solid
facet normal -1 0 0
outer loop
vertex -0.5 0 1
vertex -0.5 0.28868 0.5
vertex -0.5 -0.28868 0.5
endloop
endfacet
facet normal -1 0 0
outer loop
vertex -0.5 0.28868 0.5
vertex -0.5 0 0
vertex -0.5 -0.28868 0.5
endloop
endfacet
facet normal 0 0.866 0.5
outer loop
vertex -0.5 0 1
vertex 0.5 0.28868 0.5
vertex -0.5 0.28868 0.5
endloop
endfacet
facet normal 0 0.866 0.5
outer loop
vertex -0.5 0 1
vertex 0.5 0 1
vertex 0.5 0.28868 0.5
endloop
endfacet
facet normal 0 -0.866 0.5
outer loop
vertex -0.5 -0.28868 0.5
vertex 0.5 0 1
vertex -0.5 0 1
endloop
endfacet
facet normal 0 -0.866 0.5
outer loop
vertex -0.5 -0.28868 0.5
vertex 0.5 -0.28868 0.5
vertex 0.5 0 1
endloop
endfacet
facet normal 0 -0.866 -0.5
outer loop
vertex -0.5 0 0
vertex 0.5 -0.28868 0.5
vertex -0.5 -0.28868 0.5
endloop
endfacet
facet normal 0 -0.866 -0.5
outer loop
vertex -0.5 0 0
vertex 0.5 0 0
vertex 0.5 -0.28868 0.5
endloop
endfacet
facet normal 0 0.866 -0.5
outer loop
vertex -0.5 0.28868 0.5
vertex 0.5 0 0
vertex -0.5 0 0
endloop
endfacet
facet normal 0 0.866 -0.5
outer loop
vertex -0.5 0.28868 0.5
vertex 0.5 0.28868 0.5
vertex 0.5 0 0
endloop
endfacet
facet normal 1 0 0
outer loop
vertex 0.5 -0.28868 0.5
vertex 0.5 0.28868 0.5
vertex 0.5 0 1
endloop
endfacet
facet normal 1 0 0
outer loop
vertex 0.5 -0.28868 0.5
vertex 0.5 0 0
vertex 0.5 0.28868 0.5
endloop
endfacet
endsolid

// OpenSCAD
// Rhombic Prism for Basic Shapes
// by Slashee the Cow

line_length = 0.5;
rhombus_angle = 60;
rhombus_height = line_length * sin(rhombus_angle);

module rhombus(side_length, angle) {
    height = side_length * sin(angle);
    half_width = side_length * cos(angle);
    points = [[0, 0], [half_width, height], [0, 2 * height], [-half_width, height]];
    polygon(points);
}
translate([-0.5,0,0])
rotate([0,90,0])
linear_extrude(1)
resize([1,0,0], auto = true)
rotate([0,0,90])
rhombus(line_length, rhombus_angle);
